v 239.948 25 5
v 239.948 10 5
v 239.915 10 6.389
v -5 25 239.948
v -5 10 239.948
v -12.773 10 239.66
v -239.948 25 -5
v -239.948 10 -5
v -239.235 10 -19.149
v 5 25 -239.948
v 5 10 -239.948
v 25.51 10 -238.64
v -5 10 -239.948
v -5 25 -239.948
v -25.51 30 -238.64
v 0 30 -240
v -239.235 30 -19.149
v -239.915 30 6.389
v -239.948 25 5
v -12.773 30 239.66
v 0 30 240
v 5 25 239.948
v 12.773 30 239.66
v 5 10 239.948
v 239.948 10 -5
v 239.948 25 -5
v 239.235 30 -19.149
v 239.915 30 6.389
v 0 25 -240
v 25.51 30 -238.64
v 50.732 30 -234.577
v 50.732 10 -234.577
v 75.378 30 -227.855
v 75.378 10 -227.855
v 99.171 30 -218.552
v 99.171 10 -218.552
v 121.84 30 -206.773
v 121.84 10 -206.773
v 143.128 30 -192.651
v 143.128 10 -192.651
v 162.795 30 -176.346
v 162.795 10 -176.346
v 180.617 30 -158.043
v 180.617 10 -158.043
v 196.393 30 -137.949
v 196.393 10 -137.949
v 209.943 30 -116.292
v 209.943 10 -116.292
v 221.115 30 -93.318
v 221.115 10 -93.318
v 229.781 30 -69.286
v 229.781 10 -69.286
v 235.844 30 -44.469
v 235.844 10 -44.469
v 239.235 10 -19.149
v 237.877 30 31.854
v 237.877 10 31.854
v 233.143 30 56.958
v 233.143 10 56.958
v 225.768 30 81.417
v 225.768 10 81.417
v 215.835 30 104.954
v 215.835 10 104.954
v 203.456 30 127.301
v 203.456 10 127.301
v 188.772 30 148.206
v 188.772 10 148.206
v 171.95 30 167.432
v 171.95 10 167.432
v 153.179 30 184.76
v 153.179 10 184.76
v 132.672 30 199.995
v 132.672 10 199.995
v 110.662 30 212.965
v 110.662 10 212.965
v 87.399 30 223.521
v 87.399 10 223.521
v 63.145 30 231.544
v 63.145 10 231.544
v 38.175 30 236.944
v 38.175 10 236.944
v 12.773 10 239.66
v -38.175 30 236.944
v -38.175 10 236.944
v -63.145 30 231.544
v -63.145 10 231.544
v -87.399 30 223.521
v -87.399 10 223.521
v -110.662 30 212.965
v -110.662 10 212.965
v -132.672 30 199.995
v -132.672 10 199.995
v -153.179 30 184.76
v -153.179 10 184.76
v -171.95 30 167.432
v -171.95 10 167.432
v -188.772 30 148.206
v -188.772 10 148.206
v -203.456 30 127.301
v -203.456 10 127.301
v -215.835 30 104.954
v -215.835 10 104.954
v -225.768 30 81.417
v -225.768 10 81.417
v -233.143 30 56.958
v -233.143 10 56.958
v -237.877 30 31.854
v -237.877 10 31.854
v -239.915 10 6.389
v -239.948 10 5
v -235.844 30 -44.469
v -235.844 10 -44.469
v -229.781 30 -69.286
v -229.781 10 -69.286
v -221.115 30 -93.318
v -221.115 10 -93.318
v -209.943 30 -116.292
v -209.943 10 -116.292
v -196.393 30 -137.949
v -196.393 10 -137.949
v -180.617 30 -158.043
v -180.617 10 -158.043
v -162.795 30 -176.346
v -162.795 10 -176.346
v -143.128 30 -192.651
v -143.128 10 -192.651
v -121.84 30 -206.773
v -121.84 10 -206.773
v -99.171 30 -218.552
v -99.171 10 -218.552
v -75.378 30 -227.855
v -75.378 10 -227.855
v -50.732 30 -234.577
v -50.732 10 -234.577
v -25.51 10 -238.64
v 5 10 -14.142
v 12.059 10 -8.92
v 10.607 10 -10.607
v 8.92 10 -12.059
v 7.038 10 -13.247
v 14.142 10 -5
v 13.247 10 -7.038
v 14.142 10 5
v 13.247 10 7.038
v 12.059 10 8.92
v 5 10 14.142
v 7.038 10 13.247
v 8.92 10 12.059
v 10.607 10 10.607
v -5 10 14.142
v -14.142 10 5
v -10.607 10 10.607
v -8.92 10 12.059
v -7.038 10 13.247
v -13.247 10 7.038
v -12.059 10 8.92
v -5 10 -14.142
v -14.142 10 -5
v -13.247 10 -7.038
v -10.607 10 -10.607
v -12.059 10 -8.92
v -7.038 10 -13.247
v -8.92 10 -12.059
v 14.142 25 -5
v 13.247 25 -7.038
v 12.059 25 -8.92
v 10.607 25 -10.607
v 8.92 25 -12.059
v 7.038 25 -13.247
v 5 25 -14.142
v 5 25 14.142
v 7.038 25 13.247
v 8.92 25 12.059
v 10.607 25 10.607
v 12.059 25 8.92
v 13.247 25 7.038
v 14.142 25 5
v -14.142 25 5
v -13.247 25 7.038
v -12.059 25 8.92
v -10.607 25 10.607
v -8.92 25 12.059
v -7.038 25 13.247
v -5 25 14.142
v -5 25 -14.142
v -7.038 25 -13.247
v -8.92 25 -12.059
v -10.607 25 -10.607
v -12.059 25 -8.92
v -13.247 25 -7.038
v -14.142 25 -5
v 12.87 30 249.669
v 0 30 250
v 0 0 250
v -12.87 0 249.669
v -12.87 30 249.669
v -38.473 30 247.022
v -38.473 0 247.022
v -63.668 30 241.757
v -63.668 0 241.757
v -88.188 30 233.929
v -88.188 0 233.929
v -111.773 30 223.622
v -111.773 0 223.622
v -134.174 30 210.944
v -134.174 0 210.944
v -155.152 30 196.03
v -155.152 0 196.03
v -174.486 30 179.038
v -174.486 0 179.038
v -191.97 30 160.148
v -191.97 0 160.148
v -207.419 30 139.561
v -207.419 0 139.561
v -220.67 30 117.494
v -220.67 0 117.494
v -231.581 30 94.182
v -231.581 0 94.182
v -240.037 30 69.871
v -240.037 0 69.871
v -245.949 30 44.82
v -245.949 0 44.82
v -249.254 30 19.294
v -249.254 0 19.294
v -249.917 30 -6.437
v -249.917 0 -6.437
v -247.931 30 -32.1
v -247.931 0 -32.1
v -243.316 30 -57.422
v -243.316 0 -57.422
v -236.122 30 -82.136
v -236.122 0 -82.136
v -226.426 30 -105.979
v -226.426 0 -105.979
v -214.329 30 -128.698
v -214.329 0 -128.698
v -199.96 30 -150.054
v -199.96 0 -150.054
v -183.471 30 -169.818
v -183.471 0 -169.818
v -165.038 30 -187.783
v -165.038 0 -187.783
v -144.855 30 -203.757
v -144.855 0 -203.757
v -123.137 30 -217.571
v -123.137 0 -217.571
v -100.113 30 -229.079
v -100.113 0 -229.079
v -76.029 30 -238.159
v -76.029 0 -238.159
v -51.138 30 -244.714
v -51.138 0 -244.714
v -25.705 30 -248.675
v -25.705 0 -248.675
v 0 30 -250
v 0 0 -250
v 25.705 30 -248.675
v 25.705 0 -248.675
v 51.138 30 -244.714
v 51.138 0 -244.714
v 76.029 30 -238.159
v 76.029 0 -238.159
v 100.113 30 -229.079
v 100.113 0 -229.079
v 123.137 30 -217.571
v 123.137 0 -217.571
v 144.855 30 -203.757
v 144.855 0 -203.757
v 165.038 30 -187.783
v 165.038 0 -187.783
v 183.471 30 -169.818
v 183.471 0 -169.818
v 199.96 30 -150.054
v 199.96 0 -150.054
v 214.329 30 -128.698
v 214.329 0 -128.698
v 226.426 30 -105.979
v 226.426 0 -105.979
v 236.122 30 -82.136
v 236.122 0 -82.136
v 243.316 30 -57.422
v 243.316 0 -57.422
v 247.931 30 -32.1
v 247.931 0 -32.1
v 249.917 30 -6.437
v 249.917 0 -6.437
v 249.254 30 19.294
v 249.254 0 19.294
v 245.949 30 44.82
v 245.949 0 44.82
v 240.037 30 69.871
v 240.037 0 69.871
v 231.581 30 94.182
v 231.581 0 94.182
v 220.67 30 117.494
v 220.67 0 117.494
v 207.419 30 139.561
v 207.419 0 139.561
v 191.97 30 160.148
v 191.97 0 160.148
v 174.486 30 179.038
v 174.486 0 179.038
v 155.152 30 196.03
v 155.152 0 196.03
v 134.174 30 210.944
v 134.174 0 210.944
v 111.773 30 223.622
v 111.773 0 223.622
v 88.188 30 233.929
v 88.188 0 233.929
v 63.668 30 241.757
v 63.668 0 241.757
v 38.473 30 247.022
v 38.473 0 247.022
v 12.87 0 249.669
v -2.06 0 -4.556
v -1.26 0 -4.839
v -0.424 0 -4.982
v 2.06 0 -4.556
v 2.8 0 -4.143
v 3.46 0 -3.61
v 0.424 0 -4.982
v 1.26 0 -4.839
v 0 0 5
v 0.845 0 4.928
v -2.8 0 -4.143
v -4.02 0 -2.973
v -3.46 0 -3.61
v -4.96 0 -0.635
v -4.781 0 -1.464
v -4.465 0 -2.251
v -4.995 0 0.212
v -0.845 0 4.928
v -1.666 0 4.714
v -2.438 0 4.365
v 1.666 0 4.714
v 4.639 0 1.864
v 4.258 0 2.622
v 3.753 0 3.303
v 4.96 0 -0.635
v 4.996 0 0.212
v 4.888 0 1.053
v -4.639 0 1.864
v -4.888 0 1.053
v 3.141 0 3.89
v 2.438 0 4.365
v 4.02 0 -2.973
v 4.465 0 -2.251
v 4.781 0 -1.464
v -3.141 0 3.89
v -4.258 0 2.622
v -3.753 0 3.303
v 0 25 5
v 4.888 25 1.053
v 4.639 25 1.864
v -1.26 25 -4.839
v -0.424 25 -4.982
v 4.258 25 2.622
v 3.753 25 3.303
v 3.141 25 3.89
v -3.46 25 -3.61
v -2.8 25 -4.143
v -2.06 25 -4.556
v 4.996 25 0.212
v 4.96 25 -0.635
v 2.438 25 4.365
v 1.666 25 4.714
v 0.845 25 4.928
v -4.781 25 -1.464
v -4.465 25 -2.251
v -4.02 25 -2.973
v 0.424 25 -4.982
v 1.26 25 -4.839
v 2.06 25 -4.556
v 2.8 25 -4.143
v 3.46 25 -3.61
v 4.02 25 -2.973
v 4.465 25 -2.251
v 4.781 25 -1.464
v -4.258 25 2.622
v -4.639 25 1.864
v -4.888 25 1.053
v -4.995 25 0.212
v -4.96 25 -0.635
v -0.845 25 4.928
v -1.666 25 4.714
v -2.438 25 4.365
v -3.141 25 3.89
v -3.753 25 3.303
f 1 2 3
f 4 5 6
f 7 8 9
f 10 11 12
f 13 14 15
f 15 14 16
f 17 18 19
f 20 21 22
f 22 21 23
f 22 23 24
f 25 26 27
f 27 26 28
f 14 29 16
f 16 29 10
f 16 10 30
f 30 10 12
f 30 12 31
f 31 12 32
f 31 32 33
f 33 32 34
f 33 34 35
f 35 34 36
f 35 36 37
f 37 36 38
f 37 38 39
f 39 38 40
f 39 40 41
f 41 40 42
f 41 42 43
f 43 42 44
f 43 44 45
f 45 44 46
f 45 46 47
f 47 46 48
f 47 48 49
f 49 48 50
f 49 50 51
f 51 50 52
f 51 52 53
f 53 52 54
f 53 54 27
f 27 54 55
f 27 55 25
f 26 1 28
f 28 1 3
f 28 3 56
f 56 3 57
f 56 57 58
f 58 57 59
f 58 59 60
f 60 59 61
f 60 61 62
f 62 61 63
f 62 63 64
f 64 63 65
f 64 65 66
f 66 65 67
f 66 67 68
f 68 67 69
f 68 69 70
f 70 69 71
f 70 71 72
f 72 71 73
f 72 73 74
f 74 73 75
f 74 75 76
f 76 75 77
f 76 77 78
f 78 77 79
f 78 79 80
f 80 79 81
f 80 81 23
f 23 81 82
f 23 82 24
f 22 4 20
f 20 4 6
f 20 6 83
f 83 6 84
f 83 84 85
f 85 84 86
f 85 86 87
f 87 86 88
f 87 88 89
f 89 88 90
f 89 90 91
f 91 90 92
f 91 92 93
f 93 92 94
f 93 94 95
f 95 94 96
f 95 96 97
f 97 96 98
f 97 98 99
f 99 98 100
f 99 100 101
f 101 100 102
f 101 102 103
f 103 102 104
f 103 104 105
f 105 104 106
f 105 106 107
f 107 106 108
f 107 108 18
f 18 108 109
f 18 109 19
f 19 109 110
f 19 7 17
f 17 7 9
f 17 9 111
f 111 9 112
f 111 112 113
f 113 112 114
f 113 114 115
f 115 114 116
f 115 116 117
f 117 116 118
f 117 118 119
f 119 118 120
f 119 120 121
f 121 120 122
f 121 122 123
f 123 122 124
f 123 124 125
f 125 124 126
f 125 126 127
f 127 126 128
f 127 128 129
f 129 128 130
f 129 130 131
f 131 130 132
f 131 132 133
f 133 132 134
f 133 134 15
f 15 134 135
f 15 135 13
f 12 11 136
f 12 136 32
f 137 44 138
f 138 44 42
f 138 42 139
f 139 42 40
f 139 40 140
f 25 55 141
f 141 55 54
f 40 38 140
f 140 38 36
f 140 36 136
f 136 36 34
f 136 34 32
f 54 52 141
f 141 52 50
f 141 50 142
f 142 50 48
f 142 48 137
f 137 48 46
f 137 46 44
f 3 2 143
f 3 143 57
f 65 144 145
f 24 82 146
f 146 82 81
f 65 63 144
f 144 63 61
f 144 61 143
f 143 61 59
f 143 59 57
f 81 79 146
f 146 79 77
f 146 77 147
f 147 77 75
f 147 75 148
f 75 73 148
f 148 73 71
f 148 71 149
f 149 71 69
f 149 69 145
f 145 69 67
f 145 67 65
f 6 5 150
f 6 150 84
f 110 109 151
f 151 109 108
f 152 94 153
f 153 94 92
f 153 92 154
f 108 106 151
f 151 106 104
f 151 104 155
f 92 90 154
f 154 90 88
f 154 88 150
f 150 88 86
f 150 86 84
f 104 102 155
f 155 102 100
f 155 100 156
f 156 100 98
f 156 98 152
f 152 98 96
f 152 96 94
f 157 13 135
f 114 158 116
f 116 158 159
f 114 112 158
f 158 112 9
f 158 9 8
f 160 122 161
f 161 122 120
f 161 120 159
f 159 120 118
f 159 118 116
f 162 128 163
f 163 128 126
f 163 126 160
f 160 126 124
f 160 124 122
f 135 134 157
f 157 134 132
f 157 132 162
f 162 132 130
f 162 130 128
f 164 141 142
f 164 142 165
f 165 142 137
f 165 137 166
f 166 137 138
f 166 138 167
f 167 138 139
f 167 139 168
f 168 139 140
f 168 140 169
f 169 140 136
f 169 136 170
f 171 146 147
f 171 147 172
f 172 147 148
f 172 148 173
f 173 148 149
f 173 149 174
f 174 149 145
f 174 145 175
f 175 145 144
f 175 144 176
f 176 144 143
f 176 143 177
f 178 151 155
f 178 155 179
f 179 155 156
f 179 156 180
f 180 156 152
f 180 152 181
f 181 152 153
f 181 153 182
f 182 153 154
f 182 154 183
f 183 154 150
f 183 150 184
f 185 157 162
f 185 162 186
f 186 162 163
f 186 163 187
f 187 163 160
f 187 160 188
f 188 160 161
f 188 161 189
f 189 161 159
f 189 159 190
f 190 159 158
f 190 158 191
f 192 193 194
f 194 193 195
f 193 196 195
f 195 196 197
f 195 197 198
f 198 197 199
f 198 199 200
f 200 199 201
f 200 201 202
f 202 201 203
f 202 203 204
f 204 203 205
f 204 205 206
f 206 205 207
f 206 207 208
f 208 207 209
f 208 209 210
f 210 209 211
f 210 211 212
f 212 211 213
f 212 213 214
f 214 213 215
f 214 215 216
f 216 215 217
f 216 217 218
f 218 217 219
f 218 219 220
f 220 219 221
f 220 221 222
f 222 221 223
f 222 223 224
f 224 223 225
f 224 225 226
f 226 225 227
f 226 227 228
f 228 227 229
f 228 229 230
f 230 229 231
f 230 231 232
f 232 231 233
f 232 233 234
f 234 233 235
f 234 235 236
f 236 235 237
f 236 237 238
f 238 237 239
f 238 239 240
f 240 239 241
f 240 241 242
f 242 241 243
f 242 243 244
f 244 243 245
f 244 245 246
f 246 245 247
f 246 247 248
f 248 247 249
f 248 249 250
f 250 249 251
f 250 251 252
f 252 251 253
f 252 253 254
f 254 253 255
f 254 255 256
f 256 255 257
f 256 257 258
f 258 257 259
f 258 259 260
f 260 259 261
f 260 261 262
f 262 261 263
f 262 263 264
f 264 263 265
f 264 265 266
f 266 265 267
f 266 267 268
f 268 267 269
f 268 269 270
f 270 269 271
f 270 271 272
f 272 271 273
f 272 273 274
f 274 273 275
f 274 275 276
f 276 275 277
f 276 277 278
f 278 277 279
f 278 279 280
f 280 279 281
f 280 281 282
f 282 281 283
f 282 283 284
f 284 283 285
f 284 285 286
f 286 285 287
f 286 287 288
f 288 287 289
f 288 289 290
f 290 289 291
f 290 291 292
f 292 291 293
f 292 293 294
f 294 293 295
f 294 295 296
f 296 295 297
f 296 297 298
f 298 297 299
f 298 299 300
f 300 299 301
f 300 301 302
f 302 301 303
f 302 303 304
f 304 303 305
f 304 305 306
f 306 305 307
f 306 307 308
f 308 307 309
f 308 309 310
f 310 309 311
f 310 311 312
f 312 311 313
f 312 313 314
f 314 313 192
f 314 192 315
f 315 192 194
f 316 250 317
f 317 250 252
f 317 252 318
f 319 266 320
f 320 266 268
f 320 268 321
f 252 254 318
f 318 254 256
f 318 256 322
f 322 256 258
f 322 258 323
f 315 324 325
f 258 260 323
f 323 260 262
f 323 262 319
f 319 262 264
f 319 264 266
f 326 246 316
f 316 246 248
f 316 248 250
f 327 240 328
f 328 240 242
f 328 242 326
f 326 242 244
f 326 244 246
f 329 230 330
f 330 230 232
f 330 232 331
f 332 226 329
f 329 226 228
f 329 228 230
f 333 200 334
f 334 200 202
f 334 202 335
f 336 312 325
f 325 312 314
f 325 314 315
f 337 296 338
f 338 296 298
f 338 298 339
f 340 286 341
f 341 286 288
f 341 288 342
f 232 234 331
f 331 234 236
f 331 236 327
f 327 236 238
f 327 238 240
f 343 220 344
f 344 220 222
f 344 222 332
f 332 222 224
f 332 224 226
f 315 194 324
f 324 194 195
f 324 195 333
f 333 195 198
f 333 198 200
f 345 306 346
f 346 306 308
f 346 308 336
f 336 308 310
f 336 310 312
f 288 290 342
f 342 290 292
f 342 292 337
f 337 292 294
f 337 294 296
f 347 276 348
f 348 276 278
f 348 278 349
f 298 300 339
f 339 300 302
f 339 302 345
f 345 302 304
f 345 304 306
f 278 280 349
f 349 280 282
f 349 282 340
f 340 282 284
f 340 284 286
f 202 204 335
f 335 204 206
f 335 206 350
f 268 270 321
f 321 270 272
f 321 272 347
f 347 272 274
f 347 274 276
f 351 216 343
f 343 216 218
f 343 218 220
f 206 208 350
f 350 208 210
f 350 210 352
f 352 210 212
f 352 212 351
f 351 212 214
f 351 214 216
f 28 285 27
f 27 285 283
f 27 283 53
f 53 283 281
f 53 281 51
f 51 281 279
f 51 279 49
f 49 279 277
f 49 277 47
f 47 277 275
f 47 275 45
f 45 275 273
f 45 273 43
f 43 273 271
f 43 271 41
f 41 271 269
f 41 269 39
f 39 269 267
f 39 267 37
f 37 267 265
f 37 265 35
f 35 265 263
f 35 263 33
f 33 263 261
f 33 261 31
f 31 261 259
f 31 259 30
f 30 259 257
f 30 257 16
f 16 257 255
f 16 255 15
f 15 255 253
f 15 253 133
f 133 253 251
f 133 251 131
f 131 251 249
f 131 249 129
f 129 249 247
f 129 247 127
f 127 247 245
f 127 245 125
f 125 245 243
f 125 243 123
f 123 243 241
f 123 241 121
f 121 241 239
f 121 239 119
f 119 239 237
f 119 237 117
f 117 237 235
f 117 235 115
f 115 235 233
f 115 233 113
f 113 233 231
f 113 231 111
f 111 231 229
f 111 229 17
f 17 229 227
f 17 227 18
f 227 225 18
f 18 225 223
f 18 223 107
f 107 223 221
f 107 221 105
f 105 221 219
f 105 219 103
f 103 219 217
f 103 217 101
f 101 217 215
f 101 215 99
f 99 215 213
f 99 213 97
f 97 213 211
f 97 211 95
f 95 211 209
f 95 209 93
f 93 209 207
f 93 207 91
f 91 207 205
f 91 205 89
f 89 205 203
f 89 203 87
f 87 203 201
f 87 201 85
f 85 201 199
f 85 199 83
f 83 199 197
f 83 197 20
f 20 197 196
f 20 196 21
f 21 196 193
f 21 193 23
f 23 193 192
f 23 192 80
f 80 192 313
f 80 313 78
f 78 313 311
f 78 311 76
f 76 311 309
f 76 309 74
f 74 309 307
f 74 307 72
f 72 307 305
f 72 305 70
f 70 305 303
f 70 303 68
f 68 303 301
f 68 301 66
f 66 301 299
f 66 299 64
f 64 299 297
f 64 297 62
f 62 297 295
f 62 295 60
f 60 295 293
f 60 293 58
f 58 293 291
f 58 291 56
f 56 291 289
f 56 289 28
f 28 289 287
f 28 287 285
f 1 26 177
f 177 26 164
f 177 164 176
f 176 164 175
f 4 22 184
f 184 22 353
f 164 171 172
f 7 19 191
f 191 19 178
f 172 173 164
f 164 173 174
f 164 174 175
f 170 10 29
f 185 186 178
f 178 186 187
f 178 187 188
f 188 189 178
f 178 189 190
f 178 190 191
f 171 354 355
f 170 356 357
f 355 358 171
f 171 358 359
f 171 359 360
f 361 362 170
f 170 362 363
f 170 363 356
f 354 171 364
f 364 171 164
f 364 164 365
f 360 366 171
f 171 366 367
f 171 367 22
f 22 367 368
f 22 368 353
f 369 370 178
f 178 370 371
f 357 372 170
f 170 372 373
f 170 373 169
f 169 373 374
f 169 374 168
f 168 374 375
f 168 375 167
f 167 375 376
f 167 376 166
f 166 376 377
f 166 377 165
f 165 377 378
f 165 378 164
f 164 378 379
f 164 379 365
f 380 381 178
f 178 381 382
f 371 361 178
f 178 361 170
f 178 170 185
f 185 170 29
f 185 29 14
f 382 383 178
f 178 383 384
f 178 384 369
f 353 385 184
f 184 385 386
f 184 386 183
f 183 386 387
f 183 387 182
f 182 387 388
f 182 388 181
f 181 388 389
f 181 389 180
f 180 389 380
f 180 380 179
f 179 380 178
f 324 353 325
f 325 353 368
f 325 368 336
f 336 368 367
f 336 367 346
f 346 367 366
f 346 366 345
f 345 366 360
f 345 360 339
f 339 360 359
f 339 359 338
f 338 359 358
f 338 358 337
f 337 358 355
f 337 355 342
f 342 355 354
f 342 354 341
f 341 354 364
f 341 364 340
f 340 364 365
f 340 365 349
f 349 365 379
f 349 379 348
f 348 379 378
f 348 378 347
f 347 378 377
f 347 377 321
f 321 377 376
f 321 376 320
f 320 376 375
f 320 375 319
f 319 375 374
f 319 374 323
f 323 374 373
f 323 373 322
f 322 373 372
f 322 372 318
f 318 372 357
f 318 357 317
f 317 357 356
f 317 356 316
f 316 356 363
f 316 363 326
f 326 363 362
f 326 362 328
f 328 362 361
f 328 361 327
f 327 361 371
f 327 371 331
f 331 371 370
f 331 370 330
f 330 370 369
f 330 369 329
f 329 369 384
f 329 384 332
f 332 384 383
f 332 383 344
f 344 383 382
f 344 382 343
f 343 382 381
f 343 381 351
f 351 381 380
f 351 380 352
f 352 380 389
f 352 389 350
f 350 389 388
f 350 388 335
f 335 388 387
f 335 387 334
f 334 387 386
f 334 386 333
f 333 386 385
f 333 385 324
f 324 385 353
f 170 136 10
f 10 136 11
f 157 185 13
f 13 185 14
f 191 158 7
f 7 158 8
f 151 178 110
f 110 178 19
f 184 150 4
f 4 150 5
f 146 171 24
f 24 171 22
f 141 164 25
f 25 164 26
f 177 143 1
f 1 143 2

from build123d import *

# Parameters (mm, degrees)
CROQUIS1_R              = 250
SALIENTE_EXTRUIR1_DEPTH = 10
CROQUIS2_R              = 250
CROQUIS2_R_2            = 240
SALIENTE_EXTRUIR2_DEPTH = 20
CROQUIS3_R              = 15
SALIENTE_EXTRUIR3_DEPTH = 15
CROQUIS4_R              = 5
CORTAR_EXTRUIR1_DEPTH   = 355.436171969
CROQUIS5_W              = 235.044023843
CROQUIS5_H              = 10
CROQUIS5_W_2            = 10
CROQUIS5_H_2            = 235.044023843
SALIENTE_EXTRUIR4_DEPTH = 15


with BuildPart() as part:
    # Croquis1 → Saliente-Extruir1 (new body)
    with BuildSketch(Plane(origin=(0, 0, 0), x_dir=(1, 0, 0), z_dir=(0, 1, 0))):
        with Locations(Location((0, 0, 0), (0, 0, 270))):
            Circle(CROQUIS1_R)
    extrude(amount=SALIENTE_EXTRUIR1_DEPTH)

    # Croquis2 → Saliente-Extruir2 (add)
    with BuildSketch(Plane(origin=(0, 10, 0), x_dir=(1, 0, 0), z_dir=(0, 1, 0))):
        with Locations(Location((0, 0, 0), (0, 0, 270))):
            Circle(CROQUIS2_R)
        with Locations(Location((0, 0, 0), (0, 0, 270))):
            Circle(CROQUIS2_R_2, mode=Mode.SUBTRACT)
    extrude(amount=SALIENTE_EXTRUIR2_DEPTH)

    # Croquis3 → Saliente-Extruir3 (add)
    with BuildSketch(Plane(origin=(0, 10, 0), x_dir=(1, 0, 0), z_dir=(0, 1, 0))):
        with Locations(Location((0, 0, 0), (0, 0, 270))):
            Circle(CROQUIS3_R)
    extrude(amount=SALIENTE_EXTRUIR3_DEPTH)

    # Croquis4 → Cortar-Extruir1 (cut, through all)
    with BuildSketch(Plane(origin=(0, 25, 0), x_dir=(1, 0, 0), z_dir=(0, 1, 0))):
        with Locations(Location((0, 0, 0), (0, 0, 270))):
            Circle(CROQUIS4_R)
    extrude(amount=-CORTAR_EXTRUIR1_DEPTH, mode=Mode.SUBTRACT)

    # Croquis5 → Saliente-Extruir4 (add)
    with BuildSketch(Plane(origin=(0, 10, 0), x_dir=(1, 0, 0), z_dir=(0, 1, 0))):
        with Locations((126.662657579, 0)):
            Rectangle(CROQUIS5_W, CROQUIS5_H)
        with Locations((0, -126.662657579)):
            Rectangle(CROQUIS5_W_2, CROQUIS5_H_2)
        with Locations((-126.662657579, 0)):
            Rectangle(CROQUIS5_W, CROQUIS5_H)
        with Locations((0, 126.662657579)):
            Rectangle(CROQUIS5_W_2, CROQUIS5_H_2)
    extrude(amount=SALIENTE_EXTRUIR4_DEPTH)


solid = part.part
